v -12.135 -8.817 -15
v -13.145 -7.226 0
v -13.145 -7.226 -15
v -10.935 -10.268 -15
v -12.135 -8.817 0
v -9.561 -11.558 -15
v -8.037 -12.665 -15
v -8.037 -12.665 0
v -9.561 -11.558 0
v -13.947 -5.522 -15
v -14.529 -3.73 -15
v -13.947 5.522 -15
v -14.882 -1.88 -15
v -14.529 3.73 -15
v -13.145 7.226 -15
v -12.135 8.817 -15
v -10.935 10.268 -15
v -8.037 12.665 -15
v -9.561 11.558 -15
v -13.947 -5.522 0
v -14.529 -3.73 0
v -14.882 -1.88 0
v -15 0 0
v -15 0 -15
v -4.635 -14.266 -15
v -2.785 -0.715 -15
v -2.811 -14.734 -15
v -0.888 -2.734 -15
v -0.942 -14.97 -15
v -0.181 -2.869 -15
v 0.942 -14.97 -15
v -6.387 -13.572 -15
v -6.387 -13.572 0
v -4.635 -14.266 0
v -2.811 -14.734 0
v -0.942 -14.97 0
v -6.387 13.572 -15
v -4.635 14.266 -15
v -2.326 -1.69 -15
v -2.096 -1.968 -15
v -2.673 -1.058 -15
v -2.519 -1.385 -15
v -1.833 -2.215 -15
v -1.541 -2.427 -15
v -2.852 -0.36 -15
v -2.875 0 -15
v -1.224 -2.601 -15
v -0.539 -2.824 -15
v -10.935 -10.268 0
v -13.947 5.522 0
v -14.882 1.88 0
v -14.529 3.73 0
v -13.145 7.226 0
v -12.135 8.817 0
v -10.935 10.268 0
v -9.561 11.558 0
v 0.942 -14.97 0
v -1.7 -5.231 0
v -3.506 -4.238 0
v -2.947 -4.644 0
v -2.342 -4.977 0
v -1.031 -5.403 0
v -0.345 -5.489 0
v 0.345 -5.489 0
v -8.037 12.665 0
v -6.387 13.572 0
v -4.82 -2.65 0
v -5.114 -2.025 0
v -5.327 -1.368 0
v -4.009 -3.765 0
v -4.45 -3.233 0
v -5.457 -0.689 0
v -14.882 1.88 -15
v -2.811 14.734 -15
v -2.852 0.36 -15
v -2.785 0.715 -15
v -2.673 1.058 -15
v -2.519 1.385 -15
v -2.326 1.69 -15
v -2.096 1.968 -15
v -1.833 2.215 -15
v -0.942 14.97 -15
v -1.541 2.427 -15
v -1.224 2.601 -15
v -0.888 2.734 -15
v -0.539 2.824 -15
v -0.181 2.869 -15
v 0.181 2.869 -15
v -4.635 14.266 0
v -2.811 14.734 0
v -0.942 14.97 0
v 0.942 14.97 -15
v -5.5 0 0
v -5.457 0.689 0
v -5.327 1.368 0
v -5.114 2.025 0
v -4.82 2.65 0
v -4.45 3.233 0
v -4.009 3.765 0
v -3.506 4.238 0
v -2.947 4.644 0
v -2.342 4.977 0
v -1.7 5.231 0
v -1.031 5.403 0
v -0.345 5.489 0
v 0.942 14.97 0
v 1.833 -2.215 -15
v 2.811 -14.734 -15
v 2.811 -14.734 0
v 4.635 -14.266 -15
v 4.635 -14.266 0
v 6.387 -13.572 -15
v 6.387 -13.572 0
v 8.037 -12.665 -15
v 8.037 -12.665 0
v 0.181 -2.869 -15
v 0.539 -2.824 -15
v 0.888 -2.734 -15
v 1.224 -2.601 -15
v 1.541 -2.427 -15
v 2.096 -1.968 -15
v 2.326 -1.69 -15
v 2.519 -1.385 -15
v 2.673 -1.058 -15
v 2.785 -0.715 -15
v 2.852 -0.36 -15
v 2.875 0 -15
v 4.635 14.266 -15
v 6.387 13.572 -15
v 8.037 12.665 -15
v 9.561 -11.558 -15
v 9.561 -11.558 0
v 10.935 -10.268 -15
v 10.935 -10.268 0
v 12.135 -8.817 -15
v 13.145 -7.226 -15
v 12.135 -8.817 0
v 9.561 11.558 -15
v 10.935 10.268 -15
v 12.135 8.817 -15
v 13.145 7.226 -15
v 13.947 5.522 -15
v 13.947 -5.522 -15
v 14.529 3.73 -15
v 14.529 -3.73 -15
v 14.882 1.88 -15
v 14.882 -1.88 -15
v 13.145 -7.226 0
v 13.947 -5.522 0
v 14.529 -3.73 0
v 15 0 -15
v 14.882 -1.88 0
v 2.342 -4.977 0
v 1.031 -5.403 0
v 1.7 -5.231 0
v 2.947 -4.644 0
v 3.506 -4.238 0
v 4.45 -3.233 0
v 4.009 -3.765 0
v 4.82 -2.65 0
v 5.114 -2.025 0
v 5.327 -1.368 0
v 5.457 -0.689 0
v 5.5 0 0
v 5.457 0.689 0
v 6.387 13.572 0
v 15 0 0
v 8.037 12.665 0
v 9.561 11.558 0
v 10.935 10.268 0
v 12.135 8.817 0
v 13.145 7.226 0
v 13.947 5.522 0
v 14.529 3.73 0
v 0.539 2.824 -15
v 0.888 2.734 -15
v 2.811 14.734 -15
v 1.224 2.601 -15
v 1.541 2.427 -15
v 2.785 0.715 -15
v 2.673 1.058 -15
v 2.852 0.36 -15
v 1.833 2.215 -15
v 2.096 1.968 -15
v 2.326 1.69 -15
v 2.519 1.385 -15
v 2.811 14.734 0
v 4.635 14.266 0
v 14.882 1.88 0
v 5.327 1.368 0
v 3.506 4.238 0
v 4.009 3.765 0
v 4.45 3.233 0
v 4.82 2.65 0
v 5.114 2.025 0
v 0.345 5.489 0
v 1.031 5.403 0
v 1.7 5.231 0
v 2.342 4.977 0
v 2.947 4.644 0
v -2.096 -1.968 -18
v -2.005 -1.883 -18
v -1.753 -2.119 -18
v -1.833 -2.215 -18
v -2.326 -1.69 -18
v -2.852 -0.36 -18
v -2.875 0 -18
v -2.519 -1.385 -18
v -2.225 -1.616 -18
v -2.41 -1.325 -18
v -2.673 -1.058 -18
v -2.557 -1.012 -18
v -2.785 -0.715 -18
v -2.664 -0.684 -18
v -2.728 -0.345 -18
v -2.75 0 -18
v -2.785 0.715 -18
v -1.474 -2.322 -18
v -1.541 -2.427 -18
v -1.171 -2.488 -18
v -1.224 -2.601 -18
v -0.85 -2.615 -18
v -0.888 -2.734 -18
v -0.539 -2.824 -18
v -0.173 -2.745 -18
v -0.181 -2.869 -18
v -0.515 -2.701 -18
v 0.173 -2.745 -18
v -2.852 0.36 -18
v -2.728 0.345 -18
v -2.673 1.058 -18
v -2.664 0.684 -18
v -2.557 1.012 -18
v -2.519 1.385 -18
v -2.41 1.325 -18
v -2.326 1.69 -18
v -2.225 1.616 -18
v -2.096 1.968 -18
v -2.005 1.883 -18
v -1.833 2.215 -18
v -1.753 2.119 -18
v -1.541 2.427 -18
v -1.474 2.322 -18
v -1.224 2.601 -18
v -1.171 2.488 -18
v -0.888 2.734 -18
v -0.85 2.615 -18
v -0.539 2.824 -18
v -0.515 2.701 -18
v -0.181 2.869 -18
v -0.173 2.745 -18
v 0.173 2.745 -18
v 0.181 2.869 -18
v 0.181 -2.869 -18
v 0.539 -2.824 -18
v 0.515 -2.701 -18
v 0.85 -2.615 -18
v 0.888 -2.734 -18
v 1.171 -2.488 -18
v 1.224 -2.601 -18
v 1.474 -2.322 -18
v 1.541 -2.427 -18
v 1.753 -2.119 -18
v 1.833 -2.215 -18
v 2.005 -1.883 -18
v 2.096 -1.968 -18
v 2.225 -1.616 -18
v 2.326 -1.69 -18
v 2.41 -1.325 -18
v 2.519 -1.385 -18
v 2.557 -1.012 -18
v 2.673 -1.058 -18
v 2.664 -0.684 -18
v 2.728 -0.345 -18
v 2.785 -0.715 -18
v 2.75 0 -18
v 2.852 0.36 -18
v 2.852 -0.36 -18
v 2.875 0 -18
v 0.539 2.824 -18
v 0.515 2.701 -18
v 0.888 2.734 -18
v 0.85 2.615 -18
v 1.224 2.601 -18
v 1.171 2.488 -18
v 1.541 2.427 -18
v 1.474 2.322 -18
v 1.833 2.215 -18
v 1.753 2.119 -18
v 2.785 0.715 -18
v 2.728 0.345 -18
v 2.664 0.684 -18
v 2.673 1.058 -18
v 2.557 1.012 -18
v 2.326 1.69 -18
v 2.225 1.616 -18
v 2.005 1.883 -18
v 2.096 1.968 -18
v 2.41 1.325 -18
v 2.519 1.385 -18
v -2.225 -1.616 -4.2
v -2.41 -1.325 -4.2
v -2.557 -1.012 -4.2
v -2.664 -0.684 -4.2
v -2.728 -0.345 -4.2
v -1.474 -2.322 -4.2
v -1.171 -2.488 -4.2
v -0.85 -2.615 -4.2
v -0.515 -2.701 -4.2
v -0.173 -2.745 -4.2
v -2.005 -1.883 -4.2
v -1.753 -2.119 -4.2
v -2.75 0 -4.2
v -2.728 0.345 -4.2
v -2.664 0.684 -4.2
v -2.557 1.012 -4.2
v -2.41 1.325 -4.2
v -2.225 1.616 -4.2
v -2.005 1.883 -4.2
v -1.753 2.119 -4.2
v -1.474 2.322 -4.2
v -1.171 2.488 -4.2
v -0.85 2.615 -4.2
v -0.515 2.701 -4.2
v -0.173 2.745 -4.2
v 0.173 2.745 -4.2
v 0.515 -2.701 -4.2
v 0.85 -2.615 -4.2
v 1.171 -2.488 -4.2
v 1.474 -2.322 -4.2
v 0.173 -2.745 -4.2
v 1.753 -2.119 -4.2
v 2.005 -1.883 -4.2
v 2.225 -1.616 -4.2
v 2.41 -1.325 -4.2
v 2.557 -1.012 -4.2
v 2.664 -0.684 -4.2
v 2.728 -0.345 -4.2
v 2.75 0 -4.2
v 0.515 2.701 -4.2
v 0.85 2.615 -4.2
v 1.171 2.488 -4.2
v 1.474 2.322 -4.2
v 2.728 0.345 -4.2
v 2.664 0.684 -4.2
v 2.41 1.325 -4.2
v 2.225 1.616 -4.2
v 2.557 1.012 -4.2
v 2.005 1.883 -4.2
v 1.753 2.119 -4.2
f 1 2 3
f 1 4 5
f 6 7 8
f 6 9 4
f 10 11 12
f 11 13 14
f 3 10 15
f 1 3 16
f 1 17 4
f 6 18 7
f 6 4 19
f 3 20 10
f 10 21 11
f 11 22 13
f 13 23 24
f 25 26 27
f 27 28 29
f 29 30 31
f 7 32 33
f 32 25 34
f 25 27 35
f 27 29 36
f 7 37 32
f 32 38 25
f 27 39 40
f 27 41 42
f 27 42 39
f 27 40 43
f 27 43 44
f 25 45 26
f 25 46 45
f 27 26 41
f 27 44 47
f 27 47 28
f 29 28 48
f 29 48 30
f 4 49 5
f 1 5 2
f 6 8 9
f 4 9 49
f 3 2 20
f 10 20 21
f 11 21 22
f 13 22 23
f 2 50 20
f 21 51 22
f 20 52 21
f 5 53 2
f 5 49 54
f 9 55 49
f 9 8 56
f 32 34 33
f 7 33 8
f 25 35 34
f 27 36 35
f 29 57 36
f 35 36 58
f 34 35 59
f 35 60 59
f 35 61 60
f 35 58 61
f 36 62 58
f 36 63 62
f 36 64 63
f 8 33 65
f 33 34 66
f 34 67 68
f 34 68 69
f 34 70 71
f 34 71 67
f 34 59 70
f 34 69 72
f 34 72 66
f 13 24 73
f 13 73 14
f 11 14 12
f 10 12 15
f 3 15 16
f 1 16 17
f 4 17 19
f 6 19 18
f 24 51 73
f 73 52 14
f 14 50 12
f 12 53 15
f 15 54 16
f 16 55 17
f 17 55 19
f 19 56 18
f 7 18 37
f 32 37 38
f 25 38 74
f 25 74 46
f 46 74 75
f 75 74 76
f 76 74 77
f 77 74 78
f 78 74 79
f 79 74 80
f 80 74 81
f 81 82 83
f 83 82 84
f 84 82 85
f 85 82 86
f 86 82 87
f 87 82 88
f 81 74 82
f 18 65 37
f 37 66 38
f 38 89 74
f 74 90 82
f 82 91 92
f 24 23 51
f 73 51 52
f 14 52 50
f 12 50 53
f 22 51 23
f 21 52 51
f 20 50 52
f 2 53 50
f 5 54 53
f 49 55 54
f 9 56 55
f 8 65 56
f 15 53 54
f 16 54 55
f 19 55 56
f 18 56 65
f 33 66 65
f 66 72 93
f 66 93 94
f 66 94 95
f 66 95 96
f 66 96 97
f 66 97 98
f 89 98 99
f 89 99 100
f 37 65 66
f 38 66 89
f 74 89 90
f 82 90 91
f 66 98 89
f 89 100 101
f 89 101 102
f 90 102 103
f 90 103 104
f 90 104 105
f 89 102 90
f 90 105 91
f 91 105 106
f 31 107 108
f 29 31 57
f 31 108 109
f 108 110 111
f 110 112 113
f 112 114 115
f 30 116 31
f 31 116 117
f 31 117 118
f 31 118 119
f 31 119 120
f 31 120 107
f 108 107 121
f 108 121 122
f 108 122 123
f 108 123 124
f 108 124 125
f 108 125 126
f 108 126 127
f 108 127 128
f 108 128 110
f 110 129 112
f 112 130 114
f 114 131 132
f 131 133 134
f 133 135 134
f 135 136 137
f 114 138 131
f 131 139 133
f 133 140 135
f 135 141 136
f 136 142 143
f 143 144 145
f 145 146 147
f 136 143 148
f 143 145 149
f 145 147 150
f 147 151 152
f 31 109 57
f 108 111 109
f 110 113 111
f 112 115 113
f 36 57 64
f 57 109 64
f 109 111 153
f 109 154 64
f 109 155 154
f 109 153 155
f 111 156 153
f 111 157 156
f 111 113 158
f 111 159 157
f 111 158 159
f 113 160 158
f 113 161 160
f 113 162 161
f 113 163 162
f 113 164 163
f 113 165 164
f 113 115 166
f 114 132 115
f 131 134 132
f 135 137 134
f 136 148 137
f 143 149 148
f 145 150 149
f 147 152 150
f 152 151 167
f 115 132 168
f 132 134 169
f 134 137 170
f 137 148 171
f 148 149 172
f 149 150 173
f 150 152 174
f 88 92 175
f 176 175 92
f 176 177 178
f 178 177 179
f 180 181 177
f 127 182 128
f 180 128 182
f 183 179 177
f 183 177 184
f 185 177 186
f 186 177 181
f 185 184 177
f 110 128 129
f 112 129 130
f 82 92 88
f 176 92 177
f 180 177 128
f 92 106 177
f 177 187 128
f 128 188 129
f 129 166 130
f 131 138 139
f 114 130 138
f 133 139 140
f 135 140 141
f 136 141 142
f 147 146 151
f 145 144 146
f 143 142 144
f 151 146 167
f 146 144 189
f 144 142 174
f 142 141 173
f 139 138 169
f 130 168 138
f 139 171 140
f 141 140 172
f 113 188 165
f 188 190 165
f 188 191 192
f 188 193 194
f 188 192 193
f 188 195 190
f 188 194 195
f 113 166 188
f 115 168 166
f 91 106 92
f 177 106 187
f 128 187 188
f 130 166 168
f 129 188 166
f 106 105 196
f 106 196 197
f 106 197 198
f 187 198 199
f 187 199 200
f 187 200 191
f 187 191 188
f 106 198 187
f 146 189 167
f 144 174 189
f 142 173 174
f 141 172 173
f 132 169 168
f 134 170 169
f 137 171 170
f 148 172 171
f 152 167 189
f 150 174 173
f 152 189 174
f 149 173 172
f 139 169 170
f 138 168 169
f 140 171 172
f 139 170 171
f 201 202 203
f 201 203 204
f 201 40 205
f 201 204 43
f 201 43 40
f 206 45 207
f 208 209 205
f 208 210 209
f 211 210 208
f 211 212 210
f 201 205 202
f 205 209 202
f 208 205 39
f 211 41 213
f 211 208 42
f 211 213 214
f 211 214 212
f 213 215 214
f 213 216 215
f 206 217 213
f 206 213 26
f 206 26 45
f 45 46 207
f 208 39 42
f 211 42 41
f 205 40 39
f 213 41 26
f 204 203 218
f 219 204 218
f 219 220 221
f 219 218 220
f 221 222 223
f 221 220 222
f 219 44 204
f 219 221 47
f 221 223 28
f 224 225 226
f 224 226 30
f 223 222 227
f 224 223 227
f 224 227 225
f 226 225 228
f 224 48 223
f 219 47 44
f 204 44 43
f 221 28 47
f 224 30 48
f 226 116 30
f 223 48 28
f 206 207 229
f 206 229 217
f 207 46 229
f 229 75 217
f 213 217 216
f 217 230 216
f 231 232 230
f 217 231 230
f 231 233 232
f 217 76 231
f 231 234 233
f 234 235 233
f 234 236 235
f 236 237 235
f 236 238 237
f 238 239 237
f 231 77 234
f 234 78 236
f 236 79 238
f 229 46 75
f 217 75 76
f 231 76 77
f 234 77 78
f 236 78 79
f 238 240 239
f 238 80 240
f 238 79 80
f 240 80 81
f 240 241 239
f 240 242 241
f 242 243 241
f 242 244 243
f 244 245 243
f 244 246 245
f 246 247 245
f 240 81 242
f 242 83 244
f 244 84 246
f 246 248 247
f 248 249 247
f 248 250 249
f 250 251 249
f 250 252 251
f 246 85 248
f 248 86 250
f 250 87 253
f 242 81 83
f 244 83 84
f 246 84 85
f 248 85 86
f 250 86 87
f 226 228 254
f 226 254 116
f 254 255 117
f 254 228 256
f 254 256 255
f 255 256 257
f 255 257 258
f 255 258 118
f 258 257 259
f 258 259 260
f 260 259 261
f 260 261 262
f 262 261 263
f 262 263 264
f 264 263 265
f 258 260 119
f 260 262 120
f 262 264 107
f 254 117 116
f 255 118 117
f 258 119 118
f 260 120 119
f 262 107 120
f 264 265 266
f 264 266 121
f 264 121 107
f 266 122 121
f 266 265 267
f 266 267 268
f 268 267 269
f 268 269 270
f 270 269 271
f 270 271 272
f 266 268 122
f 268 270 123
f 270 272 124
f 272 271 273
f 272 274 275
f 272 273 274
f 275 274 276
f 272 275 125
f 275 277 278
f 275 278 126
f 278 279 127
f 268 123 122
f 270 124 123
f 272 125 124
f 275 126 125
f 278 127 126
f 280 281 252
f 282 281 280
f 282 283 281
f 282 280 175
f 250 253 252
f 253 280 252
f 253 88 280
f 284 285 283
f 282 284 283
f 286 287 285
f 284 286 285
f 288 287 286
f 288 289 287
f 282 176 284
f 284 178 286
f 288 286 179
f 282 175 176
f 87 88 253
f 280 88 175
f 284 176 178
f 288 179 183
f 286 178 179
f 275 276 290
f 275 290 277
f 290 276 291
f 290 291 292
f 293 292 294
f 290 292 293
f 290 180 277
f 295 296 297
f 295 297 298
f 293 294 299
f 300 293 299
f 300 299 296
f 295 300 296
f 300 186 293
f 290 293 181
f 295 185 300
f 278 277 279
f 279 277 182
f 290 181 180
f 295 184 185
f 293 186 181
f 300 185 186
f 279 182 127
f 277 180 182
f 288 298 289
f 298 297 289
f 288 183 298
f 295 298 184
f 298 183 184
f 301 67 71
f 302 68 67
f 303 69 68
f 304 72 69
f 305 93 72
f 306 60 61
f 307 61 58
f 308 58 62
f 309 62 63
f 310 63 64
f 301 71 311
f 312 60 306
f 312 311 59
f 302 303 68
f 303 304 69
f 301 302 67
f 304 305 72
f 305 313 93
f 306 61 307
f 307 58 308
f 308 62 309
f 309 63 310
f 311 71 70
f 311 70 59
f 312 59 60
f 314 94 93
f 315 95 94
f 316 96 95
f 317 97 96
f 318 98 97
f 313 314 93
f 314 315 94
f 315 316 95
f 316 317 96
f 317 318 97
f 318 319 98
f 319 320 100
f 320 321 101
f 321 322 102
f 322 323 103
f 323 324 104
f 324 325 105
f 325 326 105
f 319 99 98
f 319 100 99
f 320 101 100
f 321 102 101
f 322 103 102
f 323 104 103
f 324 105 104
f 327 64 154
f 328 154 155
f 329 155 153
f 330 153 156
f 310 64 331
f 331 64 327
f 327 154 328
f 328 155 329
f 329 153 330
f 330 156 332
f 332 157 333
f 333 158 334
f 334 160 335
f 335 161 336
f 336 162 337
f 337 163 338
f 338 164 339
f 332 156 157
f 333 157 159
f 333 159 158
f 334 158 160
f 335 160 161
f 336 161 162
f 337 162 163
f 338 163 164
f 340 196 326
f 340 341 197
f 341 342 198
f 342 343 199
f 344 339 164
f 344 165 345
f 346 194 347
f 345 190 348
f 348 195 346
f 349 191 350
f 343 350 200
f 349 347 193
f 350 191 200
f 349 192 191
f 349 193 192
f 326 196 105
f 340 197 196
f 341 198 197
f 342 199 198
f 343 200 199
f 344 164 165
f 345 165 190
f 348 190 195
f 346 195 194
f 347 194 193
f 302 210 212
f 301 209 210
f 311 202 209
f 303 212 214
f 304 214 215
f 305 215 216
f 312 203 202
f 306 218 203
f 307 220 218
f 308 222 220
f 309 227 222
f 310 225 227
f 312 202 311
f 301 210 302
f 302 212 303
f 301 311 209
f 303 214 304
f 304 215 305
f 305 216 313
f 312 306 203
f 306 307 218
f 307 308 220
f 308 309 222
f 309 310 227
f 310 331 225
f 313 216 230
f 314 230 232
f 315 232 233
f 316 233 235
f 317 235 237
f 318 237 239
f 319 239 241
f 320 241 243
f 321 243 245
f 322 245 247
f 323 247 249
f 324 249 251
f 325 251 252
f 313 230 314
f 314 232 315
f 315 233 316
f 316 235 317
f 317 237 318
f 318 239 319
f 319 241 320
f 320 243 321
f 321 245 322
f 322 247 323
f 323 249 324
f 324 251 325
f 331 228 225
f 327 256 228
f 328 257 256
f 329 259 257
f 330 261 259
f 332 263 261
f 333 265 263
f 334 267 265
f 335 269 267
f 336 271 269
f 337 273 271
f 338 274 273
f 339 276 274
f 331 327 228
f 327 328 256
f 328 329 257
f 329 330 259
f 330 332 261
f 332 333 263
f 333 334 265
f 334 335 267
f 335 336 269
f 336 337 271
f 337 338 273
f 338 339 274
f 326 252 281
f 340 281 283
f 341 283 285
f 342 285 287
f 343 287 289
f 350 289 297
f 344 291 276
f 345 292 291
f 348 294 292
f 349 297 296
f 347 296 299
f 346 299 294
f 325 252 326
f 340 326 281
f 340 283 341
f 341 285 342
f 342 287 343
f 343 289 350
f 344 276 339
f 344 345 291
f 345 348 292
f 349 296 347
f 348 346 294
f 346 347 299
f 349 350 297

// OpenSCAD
$fn = 50;

difference() {
	union() {
		translate(v = [0, 0, -15.0]) {
			cylinder(h = 15, r = 15.0);
		}
		#translate(v = [0, 0, -18.0]) {
			cylinder(h = 18, r = 2.875);
		}
	}
	union() {
		translate(v = [0, 0, 0]) {
			rotate(a = [0, 0, 0]) {
				difference() {
					union() {
						translate(v = [0, 0, -18.0]) {
							cylinder(h = 18, r = 2.25);
						}
						translate(v = [0, 0, -4.2]) {
							cylinder(h = 4.2, r1 = 2.75, r2 = 5.5);
						}
						translate(v = [0, 0, -18.0]) {
							cylinder(h = 18, r = 2.75);
						}
						translate(v = [0, 0, -18.0]) {
							cylinder(h = 18, r = 2.25);
						}
					}
					union();
				}
			}
		}
	}
}
